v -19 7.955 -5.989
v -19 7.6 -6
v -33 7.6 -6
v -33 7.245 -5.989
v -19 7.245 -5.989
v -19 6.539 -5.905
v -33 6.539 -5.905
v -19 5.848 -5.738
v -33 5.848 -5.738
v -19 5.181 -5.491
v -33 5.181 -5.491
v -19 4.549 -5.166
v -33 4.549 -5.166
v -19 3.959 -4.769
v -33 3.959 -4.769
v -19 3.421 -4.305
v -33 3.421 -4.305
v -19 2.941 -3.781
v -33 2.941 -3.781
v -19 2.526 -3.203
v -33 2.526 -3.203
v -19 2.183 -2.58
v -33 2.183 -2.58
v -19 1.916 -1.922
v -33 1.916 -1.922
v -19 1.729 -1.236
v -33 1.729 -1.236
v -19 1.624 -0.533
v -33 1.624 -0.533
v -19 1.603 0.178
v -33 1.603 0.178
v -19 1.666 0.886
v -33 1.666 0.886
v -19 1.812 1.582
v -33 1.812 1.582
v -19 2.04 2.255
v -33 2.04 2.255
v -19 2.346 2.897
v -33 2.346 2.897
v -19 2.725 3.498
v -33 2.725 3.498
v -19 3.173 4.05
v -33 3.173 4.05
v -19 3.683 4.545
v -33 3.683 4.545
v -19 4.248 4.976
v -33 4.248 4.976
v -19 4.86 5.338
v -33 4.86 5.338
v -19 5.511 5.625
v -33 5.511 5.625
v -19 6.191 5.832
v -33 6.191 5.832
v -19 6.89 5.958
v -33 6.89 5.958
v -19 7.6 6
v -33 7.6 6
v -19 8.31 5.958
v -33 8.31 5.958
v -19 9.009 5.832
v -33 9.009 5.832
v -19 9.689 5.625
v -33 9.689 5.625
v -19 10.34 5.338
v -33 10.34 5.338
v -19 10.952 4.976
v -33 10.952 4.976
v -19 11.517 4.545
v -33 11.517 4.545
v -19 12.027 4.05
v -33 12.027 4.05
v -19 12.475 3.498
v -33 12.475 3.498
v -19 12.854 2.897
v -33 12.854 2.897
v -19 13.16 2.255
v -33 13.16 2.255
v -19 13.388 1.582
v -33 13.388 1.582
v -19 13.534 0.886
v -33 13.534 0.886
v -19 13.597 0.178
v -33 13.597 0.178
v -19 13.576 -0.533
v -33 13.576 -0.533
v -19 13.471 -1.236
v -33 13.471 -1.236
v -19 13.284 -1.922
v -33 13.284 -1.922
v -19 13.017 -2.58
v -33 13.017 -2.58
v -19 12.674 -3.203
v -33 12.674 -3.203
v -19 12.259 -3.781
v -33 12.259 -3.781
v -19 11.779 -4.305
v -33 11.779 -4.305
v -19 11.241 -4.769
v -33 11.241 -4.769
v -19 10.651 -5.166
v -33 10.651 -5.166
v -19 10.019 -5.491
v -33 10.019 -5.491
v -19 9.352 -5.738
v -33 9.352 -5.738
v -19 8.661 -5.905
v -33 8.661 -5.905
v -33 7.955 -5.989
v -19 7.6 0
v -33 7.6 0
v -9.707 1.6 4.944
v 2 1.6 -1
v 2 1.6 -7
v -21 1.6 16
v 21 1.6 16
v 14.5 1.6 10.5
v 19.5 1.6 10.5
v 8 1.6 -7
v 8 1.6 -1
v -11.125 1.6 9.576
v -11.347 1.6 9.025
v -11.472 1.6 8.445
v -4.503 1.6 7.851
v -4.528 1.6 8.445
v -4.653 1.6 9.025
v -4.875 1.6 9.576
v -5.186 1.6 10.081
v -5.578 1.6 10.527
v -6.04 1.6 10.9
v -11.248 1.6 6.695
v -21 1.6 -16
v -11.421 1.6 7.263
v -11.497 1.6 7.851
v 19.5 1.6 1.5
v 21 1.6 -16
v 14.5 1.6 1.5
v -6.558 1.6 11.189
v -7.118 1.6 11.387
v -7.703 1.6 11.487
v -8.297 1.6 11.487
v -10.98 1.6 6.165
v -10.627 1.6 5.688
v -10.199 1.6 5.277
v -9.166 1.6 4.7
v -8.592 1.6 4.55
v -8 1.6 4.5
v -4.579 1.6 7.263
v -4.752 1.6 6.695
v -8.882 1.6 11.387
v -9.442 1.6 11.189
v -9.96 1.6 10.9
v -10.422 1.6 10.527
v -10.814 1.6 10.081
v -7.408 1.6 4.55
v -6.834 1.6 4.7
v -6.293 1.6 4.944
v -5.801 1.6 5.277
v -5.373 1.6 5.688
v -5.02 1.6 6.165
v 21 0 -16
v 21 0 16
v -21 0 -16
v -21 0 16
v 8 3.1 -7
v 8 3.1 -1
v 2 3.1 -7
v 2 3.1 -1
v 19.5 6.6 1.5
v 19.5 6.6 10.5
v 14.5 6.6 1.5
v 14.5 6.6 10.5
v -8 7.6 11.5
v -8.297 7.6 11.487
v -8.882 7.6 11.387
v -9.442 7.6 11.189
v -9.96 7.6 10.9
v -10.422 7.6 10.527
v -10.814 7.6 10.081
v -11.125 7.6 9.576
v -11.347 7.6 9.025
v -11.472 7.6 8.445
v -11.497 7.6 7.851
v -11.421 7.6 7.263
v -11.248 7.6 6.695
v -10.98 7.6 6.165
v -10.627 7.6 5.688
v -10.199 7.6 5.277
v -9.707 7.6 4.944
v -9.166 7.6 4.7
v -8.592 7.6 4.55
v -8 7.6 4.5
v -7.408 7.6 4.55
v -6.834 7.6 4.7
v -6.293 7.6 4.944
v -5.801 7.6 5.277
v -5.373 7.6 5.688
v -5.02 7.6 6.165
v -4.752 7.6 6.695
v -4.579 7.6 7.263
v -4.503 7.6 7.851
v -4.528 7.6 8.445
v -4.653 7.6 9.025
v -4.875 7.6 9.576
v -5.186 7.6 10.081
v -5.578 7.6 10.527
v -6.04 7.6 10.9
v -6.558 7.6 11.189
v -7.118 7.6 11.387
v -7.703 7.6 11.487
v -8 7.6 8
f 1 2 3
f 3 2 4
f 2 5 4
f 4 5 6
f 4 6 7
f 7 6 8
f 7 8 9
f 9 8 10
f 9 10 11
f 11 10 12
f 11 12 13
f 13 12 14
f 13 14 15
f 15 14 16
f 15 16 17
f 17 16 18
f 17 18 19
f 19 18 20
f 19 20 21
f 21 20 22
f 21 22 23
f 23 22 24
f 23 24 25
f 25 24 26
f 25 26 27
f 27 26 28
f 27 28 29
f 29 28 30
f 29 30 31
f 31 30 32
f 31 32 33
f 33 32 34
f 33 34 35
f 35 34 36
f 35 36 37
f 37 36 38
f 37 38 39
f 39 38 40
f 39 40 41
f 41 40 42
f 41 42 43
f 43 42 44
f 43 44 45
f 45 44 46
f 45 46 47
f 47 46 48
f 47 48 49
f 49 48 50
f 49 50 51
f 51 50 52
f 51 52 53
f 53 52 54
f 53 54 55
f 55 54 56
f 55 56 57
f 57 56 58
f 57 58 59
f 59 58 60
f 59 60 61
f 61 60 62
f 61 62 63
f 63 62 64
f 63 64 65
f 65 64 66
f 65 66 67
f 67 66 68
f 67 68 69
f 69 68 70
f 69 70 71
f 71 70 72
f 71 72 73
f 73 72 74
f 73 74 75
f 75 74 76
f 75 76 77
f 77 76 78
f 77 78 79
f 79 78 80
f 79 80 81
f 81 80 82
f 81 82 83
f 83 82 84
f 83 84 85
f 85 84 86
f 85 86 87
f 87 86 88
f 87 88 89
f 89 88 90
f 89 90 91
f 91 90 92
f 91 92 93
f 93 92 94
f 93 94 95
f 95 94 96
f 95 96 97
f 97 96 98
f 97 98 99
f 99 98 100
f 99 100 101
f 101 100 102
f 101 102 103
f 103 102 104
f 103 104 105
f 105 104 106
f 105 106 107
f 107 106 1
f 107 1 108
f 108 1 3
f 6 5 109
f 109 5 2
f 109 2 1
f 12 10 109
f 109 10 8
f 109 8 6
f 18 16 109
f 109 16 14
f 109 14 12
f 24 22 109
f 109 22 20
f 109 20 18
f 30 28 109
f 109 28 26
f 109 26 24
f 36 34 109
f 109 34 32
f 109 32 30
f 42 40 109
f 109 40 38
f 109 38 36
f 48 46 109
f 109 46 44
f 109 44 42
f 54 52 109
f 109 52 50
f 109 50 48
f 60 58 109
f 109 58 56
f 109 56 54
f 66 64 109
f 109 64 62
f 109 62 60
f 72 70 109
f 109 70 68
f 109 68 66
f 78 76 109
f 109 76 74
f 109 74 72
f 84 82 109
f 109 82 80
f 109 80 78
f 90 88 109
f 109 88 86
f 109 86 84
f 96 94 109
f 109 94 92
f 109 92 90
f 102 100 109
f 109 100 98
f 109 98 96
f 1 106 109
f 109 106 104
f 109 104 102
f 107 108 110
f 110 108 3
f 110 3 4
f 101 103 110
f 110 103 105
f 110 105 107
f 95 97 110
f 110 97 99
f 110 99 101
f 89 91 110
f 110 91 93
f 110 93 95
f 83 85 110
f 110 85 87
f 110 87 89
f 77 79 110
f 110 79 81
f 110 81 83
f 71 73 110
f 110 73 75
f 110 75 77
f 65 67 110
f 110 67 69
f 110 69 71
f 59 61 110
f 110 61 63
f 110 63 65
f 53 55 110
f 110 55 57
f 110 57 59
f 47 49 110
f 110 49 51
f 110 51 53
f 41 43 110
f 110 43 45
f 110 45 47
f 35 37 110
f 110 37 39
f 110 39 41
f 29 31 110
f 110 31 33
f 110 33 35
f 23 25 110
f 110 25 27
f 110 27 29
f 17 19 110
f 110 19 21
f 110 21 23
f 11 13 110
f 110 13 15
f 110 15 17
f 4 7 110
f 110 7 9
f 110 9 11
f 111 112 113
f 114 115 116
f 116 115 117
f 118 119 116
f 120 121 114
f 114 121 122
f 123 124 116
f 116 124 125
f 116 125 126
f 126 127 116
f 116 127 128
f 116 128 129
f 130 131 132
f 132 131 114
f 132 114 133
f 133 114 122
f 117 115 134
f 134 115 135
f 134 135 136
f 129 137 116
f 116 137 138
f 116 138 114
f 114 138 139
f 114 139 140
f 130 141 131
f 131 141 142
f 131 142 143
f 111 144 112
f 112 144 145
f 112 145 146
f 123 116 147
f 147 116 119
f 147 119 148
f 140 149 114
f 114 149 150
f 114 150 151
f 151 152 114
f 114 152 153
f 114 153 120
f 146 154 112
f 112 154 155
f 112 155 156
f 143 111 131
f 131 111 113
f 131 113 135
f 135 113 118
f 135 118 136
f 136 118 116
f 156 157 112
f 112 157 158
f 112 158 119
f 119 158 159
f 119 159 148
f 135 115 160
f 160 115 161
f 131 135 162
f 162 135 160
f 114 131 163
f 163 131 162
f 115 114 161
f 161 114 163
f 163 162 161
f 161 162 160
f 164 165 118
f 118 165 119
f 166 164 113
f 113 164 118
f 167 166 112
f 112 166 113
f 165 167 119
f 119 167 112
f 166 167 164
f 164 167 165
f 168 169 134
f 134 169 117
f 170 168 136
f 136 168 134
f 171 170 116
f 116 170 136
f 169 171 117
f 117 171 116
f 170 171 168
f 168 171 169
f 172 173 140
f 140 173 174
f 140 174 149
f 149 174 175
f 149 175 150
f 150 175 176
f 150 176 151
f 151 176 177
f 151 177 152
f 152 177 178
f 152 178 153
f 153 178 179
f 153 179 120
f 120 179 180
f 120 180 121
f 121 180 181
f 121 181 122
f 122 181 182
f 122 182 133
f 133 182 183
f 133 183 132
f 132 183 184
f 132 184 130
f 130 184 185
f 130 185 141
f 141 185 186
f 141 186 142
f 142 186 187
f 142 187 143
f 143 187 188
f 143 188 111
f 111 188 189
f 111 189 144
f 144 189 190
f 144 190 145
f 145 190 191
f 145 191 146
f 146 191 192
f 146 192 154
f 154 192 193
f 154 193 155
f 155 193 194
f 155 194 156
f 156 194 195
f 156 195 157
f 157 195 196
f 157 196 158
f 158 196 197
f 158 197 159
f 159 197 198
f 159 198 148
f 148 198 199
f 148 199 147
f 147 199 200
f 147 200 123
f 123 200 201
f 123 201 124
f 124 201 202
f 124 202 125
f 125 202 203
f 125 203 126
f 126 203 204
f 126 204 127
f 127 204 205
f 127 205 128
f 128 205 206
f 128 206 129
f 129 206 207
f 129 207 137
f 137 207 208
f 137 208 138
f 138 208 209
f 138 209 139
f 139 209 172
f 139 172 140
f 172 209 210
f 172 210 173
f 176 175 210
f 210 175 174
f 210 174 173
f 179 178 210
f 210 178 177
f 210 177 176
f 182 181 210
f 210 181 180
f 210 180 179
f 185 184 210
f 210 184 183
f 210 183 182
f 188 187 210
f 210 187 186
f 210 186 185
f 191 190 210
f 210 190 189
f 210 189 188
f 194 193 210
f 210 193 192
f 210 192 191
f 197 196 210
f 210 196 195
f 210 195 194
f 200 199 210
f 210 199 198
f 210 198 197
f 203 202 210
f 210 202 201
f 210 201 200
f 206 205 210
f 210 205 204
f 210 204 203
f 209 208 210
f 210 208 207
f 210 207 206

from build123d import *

# Parameters (mm, degrees)
SKETCH1_W           = 42
SKETCH1_H           = 32
PCB_DEPTH           = 1.6
IC_START            = 1.6
SKETCH2_W           = 6
SKETCH2_H           = 6
IC_DEPTH            = 1.5
OUT_CONNECTOR_START = 1.6
SKETCH3_W           = 5
SKETCH3_H           = 9
OUT_CONNECTOR_DEPTH = 5
BNC_SOCKET_START    = -33
SKETCH4_R           = 6
BNC_SOCKET_DEPTH    = 14
TRIM_POT_START      = 1.6
SKETCH5_R           = 3.5
TRIM_POT_DEPTH      = 6


with BuildPart() as part:
    # Sketch1 → PCB (new body)
    with BuildSketch(Plane(origin=(0, 0, 0), x_dir=(1, 0, 0), z_dir=(0, 1, 0))):
        Rectangle(SKETCH1_W, SKETCH1_H)
    extrude(amount=PCB_DEPTH)

    # Sketch2 → IC (add)
    with BuildSketch(Plane(origin=(0, 0, 0), x_dir=(1, 0, 0), z_dir=(0, 1, 0)).offset(IC_START)):
        with Locations((5, 4)):
            Rectangle(SKETCH2_W, SKETCH2_H)
    extrude(amount=IC_DEPTH)

    # Sketch3 → Out_Connector (add)
    with BuildSketch(Plane(origin=(0, 0, 0), x_dir=(1, 0, 0), z_dir=(0, 1, 0)).offset(OUT_CONNECTOR_START)):
        with Locations((17, -6)):
            Rectangle(SKETCH3_W, SKETCH3_H)
    extrude(amount=OUT_CONNECTOR_DEPTH)

    # Sketch5 → Trim_Pot (add)
    with BuildSketch(Plane(origin=(0, 0, 0), x_dir=(1, 0, 0), z_dir=(0, 1, 0)).offset(TRIM_POT_START)):
        with Locations(Location((-8, -8, 0), (0, 0, 90))):
            Circle(SKETCH5_R)
    extrude(amount=TRIM_POT_DEPTH)


with BuildPart() as body_2:
    # Sketch4 → BNC_Socket (new body)
    with BuildSketch(Plane(origin=(0, 0, 0), x_dir=(0, 0, -1), z_dir=(1, 0, 0)).offset(BNC_SOCKET_START)):
        with Locations((0, 7.6)):
            Circle(SKETCH4_R)
    extrude(amount=BNC_SOCKET_DEPTH)


solid = Compound([part.part, body_2.part])
